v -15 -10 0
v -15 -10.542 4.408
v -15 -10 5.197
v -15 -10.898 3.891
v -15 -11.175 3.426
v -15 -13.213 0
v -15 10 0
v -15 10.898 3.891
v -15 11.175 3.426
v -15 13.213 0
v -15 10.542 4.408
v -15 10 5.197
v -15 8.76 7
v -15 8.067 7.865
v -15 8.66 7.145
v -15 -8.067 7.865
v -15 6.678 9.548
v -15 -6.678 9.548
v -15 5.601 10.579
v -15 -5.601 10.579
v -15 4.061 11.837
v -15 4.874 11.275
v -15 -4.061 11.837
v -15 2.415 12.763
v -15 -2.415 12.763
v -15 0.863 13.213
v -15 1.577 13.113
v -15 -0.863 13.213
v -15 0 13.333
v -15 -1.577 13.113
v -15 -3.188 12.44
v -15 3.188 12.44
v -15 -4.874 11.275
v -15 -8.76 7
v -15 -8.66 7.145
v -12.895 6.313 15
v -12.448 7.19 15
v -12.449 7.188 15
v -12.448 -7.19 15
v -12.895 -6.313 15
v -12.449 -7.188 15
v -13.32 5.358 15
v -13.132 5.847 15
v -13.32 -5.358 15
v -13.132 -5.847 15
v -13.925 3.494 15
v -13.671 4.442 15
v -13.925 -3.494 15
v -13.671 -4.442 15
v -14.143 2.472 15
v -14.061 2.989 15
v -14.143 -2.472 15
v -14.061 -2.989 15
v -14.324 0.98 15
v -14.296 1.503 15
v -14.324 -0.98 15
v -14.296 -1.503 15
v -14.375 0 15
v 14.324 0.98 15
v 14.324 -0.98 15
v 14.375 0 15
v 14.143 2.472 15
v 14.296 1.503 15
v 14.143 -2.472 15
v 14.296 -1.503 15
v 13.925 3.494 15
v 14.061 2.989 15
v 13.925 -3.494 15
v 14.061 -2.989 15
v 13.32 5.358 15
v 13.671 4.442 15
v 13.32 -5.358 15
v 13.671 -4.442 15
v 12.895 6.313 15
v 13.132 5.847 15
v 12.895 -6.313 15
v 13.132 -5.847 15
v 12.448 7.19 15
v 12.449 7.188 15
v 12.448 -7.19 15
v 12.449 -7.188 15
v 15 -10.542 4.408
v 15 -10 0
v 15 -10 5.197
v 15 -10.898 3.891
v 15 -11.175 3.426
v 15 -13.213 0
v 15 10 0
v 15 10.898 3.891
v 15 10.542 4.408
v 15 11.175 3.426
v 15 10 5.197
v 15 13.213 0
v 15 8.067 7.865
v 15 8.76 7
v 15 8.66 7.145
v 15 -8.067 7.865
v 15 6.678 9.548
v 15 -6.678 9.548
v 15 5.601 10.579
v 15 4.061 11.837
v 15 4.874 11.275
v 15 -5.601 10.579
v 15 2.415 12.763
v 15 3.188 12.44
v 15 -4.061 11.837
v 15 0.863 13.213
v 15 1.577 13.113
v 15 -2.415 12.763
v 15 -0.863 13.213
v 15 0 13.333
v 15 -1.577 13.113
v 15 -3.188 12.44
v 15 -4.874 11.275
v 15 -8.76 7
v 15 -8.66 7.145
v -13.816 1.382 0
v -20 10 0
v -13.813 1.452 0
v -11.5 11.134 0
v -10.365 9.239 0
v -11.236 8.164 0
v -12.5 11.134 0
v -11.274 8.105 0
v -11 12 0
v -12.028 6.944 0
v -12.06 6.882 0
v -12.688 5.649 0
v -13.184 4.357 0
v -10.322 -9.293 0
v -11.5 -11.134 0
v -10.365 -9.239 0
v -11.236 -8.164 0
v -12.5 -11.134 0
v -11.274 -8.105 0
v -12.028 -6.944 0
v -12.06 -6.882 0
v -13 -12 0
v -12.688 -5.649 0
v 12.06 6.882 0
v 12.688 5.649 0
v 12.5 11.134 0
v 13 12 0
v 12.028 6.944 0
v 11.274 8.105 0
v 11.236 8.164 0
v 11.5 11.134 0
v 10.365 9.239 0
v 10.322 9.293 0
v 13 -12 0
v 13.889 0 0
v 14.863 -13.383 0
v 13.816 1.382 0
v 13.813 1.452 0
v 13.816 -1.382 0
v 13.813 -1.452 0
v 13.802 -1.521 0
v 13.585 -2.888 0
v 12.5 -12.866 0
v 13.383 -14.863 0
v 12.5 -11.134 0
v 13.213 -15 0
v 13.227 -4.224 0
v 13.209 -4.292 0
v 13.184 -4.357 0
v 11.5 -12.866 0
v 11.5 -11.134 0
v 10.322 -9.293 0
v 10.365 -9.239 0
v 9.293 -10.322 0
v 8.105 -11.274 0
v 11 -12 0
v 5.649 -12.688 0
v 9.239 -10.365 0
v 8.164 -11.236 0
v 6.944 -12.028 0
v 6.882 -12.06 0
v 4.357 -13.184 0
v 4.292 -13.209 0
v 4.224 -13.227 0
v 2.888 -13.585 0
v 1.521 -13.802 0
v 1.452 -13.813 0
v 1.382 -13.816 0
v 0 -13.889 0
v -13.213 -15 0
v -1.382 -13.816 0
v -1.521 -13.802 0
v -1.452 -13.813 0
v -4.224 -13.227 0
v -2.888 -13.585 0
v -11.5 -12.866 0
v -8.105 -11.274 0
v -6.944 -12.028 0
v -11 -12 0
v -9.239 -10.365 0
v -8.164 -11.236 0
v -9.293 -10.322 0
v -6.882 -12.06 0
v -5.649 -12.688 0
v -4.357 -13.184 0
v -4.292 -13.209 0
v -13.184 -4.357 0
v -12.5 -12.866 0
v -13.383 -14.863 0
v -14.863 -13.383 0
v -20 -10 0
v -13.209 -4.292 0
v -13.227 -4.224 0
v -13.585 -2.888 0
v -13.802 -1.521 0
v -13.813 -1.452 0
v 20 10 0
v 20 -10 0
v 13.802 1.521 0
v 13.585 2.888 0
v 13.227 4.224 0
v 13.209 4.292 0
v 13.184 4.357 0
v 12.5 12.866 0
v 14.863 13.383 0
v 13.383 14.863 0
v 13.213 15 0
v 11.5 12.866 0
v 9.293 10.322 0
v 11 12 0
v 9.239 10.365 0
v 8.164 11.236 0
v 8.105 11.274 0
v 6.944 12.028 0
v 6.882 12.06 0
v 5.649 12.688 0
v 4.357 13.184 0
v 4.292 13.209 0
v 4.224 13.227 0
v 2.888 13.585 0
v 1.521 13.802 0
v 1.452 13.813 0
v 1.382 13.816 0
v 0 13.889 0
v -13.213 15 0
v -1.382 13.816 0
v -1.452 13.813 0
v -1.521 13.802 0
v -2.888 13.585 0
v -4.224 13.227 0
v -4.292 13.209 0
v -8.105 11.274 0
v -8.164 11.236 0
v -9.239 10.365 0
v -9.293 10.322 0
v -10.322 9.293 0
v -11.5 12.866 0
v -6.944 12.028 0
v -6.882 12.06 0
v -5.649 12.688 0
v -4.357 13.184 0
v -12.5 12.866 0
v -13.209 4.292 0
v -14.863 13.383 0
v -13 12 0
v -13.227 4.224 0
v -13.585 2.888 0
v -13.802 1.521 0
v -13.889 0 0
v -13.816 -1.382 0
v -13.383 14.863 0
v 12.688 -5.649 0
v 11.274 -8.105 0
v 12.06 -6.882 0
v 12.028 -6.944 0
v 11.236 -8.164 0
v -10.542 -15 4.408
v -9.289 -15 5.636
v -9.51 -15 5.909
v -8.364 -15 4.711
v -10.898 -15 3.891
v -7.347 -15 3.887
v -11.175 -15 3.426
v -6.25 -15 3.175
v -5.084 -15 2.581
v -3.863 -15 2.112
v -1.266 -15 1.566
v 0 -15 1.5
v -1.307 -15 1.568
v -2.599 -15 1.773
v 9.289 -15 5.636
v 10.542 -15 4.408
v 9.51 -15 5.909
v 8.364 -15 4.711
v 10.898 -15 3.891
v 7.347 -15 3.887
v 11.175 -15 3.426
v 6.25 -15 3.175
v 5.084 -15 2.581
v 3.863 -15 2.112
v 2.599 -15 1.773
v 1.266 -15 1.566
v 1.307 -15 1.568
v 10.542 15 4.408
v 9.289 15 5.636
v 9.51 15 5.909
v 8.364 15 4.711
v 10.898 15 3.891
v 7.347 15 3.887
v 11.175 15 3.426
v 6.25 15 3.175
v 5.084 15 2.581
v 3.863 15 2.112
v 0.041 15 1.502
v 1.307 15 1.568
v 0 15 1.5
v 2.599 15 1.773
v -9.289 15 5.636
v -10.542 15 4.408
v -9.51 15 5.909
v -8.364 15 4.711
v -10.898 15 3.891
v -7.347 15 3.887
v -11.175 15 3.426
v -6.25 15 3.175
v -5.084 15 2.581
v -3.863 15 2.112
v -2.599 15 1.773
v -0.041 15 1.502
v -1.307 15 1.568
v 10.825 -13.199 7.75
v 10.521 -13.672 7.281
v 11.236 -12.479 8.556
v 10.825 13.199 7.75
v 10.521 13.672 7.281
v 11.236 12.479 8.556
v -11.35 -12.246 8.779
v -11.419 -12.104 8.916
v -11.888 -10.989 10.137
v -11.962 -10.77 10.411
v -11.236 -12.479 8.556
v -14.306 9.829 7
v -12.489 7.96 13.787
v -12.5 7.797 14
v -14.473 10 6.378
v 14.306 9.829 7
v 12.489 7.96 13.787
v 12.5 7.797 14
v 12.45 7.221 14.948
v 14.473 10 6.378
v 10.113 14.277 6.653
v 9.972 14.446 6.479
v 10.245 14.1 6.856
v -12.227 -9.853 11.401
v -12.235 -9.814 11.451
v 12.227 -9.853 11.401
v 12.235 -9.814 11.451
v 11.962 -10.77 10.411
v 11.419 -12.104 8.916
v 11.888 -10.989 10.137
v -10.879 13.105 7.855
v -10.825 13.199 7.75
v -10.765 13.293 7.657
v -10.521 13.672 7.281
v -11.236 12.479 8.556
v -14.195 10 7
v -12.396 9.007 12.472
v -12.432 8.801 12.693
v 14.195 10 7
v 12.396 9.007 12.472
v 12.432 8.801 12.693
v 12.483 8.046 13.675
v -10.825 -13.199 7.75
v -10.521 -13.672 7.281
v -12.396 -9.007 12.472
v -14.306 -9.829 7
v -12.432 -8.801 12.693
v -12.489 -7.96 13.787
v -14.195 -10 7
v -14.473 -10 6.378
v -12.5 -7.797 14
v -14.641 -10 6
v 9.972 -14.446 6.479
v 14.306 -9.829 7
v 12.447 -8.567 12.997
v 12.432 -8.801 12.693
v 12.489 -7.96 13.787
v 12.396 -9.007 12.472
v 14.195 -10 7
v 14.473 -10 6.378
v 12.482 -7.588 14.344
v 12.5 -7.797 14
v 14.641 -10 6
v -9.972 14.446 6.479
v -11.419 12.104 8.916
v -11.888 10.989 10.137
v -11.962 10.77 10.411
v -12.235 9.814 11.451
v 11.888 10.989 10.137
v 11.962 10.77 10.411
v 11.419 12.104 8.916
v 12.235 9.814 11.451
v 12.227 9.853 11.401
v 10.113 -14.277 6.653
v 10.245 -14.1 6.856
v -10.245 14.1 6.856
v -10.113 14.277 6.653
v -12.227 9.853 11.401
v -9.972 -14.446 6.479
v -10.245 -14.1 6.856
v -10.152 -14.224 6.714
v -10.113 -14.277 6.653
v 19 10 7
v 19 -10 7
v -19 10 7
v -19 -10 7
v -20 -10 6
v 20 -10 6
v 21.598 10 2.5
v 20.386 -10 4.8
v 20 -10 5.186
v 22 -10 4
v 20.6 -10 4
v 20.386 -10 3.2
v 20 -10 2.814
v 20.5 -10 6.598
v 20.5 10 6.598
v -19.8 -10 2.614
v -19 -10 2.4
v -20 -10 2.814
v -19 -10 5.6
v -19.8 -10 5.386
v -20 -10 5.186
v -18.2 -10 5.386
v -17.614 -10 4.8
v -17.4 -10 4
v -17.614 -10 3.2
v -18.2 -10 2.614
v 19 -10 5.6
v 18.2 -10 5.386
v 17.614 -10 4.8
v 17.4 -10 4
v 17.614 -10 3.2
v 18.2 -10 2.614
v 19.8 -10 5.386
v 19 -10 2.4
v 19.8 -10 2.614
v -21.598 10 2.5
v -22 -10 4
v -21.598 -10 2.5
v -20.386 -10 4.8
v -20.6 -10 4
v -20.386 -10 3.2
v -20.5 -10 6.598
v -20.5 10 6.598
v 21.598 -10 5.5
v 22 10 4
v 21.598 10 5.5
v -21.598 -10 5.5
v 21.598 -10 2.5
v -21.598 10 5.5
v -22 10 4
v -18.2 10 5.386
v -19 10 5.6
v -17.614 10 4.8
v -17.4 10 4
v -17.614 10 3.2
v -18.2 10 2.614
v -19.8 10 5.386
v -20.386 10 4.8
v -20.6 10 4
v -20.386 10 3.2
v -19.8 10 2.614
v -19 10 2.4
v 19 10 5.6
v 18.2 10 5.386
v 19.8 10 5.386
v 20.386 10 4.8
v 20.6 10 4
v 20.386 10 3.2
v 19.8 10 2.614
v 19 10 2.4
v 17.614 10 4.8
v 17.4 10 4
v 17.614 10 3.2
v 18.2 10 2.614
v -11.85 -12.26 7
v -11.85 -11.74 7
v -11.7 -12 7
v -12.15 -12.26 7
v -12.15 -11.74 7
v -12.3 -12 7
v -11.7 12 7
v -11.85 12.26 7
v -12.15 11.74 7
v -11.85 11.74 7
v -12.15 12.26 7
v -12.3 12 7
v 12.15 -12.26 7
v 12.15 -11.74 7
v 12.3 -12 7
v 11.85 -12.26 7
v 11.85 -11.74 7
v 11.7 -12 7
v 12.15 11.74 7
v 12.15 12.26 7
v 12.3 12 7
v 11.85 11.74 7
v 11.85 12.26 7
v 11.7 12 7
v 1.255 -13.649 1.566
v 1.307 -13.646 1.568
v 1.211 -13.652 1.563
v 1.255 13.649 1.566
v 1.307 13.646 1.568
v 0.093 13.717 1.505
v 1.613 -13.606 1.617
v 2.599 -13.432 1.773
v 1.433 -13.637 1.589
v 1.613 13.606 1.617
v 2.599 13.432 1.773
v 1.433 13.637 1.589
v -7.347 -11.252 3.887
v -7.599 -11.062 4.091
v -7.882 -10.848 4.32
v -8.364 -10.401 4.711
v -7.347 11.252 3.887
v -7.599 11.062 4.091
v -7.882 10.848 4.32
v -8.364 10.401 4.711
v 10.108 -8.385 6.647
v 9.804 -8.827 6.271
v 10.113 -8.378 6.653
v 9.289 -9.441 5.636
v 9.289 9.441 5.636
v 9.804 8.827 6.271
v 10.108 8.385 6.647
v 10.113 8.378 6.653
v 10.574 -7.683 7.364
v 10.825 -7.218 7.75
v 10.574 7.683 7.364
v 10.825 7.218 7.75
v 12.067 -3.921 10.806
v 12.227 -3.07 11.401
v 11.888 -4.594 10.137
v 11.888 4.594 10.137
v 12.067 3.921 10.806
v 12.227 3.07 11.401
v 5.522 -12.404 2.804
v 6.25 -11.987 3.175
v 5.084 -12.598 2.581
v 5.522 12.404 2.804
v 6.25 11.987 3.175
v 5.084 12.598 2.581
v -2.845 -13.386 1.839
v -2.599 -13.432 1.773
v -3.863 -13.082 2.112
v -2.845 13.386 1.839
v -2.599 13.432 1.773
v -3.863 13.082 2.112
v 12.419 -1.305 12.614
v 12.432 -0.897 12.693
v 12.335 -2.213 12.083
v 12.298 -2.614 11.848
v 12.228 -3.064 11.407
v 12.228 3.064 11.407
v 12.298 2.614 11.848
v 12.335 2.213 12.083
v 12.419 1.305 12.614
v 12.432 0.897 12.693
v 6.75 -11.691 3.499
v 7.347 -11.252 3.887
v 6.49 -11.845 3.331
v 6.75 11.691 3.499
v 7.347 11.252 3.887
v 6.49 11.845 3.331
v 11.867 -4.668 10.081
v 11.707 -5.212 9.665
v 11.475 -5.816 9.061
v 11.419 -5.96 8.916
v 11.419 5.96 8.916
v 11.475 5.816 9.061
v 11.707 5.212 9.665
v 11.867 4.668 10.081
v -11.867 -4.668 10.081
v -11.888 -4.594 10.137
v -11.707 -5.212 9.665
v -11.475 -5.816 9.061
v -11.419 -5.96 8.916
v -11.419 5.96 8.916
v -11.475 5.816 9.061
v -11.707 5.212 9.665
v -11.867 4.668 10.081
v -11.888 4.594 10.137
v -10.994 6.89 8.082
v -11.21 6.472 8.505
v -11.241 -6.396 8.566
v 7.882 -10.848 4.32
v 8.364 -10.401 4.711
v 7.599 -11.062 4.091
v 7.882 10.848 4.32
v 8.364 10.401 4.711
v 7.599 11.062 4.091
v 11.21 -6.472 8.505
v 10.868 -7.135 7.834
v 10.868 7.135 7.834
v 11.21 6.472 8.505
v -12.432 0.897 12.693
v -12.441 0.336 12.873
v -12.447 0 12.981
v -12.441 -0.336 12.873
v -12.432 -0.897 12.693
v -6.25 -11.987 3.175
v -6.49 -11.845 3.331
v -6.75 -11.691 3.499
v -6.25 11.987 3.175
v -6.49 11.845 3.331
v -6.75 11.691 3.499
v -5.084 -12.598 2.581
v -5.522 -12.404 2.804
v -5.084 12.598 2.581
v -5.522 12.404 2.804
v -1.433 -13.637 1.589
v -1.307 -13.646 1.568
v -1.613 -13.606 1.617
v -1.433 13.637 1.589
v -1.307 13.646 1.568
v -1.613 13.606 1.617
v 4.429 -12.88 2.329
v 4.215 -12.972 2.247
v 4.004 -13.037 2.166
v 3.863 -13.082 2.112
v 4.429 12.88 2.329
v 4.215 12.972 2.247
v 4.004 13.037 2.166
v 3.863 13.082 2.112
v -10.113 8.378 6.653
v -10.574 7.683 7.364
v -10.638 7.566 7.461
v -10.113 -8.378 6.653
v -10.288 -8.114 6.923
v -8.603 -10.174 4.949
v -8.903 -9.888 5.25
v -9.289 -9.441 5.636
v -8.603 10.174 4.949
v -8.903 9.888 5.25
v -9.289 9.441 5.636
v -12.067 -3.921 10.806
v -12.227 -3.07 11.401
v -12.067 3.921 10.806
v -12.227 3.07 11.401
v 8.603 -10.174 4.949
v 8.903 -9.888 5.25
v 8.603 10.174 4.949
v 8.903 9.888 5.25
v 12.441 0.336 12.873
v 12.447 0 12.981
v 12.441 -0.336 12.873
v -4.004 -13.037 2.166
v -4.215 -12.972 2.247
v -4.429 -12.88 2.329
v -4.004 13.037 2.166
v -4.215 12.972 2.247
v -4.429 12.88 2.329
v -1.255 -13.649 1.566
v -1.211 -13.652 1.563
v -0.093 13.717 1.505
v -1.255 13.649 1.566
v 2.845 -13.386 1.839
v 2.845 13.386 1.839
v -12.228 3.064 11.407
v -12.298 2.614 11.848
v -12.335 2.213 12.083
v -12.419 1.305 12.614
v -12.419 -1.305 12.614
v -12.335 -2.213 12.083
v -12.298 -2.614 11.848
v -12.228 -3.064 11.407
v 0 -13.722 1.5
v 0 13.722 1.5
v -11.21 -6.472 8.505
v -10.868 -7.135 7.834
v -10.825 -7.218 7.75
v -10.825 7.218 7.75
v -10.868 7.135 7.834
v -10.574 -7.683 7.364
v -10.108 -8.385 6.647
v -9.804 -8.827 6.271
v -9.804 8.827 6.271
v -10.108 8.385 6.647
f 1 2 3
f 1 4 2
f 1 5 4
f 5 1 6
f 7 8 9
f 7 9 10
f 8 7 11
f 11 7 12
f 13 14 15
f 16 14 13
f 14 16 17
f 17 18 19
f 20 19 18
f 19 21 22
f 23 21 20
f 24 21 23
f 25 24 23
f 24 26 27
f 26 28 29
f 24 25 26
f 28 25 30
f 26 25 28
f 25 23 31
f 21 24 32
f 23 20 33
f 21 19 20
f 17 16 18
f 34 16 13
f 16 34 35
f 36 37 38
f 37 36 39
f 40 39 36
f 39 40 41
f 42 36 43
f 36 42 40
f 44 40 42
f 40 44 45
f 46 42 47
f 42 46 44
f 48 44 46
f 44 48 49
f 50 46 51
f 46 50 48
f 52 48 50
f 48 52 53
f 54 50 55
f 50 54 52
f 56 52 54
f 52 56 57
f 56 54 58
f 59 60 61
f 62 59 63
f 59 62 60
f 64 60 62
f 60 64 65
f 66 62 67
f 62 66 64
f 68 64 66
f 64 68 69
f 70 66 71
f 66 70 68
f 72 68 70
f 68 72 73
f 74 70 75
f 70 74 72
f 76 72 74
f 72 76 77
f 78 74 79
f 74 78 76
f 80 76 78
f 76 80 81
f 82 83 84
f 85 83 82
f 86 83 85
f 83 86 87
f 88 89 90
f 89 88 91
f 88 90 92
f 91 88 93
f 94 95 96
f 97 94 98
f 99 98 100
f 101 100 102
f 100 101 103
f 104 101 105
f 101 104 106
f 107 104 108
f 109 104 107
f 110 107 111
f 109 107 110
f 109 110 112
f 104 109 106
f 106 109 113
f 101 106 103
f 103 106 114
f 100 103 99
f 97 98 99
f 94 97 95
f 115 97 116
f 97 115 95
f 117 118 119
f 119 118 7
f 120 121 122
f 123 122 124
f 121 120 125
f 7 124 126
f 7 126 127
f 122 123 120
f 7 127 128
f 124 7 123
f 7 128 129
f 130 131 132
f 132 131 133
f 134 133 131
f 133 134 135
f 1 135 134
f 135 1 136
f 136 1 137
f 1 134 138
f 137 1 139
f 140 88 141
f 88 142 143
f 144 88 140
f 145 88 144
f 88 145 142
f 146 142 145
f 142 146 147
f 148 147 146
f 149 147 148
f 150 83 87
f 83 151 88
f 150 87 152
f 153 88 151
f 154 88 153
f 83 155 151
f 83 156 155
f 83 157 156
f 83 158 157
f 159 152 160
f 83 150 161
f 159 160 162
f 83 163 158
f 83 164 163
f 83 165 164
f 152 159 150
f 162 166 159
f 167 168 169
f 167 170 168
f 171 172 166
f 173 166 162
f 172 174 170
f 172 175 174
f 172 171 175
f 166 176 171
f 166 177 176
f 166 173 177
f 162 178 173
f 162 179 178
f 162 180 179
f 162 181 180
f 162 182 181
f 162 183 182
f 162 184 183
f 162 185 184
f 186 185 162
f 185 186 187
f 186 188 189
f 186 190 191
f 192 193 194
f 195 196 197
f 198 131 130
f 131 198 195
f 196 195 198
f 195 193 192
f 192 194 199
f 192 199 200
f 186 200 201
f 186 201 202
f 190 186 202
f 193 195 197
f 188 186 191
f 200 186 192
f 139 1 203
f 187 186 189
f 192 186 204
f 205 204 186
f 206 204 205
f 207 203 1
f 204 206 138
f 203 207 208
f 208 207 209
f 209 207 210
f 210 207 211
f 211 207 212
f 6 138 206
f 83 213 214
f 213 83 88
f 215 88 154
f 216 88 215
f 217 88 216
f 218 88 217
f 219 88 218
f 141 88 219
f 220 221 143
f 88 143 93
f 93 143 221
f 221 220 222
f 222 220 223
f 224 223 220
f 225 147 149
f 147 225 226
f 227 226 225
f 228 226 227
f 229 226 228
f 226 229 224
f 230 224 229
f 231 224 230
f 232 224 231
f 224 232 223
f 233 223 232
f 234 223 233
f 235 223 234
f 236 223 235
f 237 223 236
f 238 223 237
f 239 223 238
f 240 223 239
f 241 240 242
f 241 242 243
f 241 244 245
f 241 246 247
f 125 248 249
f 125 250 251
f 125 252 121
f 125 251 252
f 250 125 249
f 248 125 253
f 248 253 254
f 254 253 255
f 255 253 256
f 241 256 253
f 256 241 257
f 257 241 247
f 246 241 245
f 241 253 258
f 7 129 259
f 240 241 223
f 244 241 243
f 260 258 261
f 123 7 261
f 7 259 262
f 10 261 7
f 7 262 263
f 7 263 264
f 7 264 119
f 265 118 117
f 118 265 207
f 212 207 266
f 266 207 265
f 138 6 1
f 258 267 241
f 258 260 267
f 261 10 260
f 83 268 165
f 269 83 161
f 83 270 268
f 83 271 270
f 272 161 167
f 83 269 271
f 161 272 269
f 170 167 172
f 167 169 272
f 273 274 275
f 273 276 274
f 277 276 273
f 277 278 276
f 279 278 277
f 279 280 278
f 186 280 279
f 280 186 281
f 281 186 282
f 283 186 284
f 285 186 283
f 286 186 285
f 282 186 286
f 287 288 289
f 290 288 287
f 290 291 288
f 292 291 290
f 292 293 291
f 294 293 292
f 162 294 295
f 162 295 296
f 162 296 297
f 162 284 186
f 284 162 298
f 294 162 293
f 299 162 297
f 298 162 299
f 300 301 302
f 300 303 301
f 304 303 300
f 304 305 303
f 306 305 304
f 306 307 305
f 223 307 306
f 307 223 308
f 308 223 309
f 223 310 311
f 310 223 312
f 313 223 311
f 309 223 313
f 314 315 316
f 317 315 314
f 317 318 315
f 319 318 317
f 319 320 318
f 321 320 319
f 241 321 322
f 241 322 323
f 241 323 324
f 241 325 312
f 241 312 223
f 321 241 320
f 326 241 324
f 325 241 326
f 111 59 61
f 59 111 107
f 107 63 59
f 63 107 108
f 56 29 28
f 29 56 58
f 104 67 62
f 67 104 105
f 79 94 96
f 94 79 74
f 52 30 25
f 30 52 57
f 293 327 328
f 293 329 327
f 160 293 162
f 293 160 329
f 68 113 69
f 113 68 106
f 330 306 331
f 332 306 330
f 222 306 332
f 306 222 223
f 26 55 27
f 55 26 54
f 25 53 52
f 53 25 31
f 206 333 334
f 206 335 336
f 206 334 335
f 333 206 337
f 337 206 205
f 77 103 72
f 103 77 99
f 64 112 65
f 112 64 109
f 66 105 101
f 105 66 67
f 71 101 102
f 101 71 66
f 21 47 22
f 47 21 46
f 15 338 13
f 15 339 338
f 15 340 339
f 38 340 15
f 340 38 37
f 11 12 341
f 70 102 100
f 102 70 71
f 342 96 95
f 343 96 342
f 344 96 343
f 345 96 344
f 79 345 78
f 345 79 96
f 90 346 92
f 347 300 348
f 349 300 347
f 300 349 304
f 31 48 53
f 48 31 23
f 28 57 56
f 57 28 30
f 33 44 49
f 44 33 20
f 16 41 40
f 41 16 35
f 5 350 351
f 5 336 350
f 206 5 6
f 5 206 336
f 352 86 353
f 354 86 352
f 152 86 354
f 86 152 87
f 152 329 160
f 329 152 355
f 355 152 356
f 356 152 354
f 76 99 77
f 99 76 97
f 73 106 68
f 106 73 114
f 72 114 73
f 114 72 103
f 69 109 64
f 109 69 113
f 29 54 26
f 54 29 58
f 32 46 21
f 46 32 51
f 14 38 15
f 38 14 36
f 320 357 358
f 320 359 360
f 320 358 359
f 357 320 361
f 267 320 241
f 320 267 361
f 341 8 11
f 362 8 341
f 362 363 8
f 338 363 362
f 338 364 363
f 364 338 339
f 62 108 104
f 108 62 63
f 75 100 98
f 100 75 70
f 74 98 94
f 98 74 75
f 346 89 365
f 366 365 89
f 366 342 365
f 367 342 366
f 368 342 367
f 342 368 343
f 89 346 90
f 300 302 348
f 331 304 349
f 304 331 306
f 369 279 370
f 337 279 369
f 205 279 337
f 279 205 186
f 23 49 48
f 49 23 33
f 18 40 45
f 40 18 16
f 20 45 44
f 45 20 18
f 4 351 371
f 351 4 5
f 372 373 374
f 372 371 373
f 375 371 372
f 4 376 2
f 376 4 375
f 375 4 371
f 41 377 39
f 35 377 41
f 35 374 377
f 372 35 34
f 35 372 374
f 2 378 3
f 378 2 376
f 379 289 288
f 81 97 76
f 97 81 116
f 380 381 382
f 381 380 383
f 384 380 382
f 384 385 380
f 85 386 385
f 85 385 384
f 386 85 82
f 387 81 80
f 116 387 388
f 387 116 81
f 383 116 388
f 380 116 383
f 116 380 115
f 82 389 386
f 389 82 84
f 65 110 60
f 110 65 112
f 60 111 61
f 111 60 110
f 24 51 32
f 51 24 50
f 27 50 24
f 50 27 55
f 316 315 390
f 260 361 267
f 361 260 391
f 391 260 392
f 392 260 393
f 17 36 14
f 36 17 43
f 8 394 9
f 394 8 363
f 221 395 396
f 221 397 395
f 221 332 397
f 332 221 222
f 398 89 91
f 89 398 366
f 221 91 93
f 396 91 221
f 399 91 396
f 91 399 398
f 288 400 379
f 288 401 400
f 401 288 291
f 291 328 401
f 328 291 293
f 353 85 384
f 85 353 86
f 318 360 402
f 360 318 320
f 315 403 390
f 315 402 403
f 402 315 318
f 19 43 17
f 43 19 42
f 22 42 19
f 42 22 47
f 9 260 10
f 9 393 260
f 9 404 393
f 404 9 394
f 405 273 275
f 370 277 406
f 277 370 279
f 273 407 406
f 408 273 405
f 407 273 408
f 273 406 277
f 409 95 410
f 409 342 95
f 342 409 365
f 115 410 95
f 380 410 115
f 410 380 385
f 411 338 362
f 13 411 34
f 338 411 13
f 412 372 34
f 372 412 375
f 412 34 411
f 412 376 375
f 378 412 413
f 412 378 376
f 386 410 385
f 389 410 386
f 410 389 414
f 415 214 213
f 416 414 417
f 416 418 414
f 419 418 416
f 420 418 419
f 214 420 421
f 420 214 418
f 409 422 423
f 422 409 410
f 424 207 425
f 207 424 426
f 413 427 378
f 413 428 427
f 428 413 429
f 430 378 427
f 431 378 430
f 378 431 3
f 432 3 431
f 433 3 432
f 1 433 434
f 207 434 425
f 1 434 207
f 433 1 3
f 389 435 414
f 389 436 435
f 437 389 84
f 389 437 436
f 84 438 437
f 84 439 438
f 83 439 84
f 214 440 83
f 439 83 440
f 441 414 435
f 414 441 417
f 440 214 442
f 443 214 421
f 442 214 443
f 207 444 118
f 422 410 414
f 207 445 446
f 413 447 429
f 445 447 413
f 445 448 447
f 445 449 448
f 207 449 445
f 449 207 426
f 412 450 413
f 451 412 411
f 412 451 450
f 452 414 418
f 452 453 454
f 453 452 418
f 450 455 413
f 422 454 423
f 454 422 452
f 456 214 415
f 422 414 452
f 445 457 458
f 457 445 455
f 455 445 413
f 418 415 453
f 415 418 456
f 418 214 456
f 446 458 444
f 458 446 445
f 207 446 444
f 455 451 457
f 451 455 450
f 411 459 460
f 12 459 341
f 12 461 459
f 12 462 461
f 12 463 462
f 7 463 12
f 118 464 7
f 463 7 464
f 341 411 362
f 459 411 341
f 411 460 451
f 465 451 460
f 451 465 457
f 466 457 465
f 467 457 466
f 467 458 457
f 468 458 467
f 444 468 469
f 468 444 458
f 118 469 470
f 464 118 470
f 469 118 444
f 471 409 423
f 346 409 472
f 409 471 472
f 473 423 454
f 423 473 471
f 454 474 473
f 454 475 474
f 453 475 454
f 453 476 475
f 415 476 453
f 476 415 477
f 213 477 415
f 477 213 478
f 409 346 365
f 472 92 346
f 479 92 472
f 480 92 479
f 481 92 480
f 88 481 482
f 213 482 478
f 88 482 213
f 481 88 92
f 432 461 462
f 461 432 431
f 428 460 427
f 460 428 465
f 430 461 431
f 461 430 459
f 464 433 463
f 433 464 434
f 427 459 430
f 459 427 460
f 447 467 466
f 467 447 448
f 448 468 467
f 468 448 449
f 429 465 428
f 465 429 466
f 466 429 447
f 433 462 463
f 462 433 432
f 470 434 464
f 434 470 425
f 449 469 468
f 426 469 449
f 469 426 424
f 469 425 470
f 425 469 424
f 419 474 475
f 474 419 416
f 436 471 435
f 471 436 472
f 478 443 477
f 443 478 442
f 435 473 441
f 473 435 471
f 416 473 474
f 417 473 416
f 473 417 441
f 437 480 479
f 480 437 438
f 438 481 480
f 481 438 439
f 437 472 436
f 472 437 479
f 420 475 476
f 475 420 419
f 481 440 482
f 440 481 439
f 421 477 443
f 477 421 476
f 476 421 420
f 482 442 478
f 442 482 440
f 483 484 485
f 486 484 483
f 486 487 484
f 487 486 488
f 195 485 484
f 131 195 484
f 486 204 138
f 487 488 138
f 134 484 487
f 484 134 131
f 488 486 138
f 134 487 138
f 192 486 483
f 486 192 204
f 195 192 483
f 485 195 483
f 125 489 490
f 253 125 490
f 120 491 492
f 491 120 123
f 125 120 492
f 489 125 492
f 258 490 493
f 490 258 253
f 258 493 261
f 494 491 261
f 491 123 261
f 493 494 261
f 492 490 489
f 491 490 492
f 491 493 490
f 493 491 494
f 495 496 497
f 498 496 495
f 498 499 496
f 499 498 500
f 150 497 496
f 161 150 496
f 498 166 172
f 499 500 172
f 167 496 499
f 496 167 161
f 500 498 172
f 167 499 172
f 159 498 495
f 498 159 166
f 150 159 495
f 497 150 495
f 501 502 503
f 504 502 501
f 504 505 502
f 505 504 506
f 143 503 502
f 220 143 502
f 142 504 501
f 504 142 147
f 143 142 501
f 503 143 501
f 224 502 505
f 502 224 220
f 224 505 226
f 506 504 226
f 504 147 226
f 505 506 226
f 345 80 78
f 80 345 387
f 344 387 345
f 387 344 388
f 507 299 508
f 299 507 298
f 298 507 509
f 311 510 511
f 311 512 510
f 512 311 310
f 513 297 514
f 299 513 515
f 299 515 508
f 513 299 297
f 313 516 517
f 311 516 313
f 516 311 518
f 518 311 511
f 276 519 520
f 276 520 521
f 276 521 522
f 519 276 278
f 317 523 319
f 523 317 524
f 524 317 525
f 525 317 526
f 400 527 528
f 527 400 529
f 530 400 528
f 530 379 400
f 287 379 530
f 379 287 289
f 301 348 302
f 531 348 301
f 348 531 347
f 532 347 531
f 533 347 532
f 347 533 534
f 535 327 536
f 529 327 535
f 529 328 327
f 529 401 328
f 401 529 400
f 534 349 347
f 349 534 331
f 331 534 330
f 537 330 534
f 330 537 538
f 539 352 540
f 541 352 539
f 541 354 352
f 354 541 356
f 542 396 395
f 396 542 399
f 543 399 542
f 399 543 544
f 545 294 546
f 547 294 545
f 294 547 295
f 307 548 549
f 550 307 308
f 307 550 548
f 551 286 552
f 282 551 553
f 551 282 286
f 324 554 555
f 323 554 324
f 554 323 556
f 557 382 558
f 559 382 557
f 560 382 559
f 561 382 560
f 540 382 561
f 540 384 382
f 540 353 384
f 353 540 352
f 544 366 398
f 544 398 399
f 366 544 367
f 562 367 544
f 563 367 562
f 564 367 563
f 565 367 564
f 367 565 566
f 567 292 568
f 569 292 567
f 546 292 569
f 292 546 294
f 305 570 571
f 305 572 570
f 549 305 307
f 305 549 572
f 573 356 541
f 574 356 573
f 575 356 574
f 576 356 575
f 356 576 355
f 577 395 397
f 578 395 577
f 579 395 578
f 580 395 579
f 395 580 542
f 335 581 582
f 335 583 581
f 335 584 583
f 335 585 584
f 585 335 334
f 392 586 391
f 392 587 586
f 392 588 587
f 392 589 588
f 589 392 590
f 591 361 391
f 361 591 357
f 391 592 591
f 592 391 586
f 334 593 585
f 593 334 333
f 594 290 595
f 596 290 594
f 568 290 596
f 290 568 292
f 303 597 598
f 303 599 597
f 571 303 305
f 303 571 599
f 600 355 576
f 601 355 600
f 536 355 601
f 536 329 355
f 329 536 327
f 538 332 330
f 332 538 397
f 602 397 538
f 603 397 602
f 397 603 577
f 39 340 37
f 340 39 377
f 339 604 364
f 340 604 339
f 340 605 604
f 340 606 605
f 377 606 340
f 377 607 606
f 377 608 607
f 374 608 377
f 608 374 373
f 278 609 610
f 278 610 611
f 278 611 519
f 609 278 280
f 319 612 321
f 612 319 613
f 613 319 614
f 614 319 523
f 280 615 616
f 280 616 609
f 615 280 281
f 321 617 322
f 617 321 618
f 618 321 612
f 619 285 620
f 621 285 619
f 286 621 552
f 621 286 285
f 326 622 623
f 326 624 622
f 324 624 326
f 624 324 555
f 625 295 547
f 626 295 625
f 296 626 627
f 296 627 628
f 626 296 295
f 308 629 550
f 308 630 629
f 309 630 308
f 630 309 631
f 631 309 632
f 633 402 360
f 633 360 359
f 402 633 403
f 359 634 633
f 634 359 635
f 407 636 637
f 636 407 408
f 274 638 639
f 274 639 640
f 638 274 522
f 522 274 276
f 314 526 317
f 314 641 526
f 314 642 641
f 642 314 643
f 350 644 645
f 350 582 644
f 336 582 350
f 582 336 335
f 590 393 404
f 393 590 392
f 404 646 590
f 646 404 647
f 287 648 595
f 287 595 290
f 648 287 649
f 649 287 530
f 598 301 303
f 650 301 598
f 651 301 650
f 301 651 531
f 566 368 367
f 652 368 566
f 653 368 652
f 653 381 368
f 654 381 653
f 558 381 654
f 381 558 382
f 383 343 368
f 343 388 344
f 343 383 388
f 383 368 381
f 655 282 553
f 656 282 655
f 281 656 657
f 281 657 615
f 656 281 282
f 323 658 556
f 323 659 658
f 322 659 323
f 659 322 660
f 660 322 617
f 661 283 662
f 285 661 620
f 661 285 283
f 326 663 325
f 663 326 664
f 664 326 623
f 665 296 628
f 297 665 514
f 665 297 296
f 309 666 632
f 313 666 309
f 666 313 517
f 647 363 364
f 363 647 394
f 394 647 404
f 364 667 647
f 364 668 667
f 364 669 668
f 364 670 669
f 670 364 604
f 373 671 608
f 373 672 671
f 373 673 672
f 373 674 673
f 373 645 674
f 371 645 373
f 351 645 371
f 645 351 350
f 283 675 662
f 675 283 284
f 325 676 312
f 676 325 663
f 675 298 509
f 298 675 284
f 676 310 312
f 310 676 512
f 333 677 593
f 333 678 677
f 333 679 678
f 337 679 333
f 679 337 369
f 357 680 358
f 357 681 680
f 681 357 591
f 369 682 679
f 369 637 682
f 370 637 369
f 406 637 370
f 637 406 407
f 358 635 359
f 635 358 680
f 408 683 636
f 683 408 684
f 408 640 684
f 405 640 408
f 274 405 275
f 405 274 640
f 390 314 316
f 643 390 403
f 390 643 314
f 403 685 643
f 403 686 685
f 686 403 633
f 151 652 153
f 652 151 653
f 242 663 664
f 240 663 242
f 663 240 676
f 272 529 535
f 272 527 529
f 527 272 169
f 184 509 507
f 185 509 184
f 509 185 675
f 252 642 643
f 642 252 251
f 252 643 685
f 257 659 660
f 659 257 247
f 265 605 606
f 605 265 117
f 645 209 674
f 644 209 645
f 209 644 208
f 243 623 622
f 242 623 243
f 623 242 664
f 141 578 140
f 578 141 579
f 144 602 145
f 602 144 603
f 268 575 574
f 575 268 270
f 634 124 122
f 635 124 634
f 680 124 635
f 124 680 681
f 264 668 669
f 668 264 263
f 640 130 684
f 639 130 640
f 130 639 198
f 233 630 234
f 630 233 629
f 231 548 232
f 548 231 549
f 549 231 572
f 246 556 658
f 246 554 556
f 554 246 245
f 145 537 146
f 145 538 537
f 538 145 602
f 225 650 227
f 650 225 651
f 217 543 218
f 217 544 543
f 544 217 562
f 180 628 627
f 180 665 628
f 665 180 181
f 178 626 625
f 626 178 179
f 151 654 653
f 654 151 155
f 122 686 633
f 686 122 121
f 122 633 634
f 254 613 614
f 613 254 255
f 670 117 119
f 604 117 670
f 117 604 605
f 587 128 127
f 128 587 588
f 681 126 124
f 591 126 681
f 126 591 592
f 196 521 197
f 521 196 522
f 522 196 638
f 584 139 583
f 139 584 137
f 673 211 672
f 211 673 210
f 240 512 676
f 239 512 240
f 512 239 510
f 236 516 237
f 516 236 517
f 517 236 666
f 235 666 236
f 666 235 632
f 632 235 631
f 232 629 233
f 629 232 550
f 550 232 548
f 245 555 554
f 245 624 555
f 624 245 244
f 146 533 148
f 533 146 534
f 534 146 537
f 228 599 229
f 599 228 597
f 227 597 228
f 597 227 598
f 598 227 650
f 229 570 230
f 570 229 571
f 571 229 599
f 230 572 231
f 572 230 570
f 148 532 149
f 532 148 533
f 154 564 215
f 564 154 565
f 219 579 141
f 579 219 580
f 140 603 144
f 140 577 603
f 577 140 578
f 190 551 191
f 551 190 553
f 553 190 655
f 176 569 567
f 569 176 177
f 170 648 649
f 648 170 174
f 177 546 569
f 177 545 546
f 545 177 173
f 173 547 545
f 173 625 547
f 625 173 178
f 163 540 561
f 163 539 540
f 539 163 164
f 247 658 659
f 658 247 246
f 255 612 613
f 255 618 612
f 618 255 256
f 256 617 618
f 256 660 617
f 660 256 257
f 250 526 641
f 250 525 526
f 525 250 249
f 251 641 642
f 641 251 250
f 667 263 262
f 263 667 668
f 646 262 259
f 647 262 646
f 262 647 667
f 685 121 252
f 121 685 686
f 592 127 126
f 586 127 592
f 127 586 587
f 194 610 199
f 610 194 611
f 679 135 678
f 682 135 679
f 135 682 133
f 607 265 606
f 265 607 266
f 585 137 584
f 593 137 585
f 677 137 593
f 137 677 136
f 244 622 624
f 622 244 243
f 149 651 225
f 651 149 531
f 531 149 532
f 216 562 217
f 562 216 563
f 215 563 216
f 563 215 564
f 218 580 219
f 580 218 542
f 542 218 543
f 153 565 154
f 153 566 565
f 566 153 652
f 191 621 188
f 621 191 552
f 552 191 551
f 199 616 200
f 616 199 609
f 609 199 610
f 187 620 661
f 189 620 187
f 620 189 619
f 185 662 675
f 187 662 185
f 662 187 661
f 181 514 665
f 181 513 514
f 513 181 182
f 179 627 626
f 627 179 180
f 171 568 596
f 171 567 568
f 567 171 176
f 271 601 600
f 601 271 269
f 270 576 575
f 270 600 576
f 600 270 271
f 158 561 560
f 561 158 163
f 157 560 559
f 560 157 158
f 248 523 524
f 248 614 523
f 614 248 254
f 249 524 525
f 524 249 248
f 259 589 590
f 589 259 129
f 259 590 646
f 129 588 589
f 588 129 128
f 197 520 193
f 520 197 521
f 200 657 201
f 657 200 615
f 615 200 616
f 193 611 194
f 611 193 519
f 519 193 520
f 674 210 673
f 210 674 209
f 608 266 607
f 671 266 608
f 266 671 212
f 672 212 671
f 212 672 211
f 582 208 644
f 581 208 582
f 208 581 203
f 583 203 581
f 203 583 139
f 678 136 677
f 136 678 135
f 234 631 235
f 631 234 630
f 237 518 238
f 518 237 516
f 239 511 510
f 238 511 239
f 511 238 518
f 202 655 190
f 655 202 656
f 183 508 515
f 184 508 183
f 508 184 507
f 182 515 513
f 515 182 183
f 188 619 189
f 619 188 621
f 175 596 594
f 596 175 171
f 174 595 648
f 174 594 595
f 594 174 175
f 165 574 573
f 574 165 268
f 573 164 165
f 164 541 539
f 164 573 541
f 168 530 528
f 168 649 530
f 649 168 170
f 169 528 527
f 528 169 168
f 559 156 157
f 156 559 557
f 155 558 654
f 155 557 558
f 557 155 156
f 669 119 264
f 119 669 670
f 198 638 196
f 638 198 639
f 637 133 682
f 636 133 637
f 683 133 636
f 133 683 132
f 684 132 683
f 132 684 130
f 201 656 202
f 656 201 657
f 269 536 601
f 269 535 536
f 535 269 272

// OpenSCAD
$fn=12;
difference()
{
	// Solids
	union()
	{
		// effector mount
		hull()
		{
			translate([-20,-10,0]) cube( [40,20,6] );
			rotate([90,0,0]) for( x=[-19,19] ) 
				translate([x,4,-10]) cylinder( r=3,h=20 );
		}

		// duct
		intersection()
		{
			translate([-15,-15,0]) cube( [30,30,15] );
			cylinder( r1=20, r2=12.5, h=20, $fn=60 );
		}
	}


	// effector mount holes
	rotate([90,0,0]) for( x=[-19,19]) 
		translate([x,4,-16]) cylinder( r=1.6,h=32 );

	// extruder cutout
	rotate([90,0,0]) translate([-0,14,-16]) cylinder( r=12.5,h=32,$fn=60 );

	// fan flow cutout
	translate([0,0,-1]) cylinder( r1=14,r2=12,h=18, $fn=60 );

	// fan mount holes
	for( x=[-12,12] ) for( y=[-12,12] ) 
		translate([x,y,0]) cylinder(r1=1,r2=0.3,h=7, $fn=6);
}
